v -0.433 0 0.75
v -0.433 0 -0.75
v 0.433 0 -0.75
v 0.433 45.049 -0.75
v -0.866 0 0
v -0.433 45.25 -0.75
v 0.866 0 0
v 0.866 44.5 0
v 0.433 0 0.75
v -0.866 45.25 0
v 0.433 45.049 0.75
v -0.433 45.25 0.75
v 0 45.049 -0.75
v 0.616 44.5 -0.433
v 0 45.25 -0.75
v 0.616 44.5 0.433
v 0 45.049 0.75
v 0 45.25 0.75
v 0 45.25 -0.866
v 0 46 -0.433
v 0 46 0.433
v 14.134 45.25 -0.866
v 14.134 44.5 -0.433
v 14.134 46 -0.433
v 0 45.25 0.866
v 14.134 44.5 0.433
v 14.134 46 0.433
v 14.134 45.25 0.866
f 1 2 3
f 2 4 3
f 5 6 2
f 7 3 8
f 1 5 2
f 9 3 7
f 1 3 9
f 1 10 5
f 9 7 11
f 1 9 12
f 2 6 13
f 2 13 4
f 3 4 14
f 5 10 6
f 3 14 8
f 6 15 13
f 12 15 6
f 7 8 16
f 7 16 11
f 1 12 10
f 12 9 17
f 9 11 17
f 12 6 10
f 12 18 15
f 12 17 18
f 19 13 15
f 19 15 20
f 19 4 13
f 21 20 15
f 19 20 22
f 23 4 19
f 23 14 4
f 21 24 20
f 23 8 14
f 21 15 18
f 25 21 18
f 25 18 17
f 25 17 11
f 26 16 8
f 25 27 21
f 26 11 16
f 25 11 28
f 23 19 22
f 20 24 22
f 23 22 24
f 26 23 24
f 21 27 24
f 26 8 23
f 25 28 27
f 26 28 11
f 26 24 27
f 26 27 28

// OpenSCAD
// 1.5 mm metric hex key
// The holder specifies the hex size. Arm lengths follow the Wiha 350 short series as a representative example. The holder source leaves the key manufacturer unspecified. The elbow is simplified.
// Units: mm
$fn = 64;
union() {
    translate([0, 0, 0]) rotate([-90, 0, 0])
        cylinder(h=45.25, r1=0.8660254037844387, r2=0.8660254037844387, $fn=6);
    translate([0, 45.25, 0]) rotate([0, 90, 0])
        cylinder(h=14.13397459621556, r1=0.8660254037844387, r2=0.8660254037844387, $fn=6);
}
